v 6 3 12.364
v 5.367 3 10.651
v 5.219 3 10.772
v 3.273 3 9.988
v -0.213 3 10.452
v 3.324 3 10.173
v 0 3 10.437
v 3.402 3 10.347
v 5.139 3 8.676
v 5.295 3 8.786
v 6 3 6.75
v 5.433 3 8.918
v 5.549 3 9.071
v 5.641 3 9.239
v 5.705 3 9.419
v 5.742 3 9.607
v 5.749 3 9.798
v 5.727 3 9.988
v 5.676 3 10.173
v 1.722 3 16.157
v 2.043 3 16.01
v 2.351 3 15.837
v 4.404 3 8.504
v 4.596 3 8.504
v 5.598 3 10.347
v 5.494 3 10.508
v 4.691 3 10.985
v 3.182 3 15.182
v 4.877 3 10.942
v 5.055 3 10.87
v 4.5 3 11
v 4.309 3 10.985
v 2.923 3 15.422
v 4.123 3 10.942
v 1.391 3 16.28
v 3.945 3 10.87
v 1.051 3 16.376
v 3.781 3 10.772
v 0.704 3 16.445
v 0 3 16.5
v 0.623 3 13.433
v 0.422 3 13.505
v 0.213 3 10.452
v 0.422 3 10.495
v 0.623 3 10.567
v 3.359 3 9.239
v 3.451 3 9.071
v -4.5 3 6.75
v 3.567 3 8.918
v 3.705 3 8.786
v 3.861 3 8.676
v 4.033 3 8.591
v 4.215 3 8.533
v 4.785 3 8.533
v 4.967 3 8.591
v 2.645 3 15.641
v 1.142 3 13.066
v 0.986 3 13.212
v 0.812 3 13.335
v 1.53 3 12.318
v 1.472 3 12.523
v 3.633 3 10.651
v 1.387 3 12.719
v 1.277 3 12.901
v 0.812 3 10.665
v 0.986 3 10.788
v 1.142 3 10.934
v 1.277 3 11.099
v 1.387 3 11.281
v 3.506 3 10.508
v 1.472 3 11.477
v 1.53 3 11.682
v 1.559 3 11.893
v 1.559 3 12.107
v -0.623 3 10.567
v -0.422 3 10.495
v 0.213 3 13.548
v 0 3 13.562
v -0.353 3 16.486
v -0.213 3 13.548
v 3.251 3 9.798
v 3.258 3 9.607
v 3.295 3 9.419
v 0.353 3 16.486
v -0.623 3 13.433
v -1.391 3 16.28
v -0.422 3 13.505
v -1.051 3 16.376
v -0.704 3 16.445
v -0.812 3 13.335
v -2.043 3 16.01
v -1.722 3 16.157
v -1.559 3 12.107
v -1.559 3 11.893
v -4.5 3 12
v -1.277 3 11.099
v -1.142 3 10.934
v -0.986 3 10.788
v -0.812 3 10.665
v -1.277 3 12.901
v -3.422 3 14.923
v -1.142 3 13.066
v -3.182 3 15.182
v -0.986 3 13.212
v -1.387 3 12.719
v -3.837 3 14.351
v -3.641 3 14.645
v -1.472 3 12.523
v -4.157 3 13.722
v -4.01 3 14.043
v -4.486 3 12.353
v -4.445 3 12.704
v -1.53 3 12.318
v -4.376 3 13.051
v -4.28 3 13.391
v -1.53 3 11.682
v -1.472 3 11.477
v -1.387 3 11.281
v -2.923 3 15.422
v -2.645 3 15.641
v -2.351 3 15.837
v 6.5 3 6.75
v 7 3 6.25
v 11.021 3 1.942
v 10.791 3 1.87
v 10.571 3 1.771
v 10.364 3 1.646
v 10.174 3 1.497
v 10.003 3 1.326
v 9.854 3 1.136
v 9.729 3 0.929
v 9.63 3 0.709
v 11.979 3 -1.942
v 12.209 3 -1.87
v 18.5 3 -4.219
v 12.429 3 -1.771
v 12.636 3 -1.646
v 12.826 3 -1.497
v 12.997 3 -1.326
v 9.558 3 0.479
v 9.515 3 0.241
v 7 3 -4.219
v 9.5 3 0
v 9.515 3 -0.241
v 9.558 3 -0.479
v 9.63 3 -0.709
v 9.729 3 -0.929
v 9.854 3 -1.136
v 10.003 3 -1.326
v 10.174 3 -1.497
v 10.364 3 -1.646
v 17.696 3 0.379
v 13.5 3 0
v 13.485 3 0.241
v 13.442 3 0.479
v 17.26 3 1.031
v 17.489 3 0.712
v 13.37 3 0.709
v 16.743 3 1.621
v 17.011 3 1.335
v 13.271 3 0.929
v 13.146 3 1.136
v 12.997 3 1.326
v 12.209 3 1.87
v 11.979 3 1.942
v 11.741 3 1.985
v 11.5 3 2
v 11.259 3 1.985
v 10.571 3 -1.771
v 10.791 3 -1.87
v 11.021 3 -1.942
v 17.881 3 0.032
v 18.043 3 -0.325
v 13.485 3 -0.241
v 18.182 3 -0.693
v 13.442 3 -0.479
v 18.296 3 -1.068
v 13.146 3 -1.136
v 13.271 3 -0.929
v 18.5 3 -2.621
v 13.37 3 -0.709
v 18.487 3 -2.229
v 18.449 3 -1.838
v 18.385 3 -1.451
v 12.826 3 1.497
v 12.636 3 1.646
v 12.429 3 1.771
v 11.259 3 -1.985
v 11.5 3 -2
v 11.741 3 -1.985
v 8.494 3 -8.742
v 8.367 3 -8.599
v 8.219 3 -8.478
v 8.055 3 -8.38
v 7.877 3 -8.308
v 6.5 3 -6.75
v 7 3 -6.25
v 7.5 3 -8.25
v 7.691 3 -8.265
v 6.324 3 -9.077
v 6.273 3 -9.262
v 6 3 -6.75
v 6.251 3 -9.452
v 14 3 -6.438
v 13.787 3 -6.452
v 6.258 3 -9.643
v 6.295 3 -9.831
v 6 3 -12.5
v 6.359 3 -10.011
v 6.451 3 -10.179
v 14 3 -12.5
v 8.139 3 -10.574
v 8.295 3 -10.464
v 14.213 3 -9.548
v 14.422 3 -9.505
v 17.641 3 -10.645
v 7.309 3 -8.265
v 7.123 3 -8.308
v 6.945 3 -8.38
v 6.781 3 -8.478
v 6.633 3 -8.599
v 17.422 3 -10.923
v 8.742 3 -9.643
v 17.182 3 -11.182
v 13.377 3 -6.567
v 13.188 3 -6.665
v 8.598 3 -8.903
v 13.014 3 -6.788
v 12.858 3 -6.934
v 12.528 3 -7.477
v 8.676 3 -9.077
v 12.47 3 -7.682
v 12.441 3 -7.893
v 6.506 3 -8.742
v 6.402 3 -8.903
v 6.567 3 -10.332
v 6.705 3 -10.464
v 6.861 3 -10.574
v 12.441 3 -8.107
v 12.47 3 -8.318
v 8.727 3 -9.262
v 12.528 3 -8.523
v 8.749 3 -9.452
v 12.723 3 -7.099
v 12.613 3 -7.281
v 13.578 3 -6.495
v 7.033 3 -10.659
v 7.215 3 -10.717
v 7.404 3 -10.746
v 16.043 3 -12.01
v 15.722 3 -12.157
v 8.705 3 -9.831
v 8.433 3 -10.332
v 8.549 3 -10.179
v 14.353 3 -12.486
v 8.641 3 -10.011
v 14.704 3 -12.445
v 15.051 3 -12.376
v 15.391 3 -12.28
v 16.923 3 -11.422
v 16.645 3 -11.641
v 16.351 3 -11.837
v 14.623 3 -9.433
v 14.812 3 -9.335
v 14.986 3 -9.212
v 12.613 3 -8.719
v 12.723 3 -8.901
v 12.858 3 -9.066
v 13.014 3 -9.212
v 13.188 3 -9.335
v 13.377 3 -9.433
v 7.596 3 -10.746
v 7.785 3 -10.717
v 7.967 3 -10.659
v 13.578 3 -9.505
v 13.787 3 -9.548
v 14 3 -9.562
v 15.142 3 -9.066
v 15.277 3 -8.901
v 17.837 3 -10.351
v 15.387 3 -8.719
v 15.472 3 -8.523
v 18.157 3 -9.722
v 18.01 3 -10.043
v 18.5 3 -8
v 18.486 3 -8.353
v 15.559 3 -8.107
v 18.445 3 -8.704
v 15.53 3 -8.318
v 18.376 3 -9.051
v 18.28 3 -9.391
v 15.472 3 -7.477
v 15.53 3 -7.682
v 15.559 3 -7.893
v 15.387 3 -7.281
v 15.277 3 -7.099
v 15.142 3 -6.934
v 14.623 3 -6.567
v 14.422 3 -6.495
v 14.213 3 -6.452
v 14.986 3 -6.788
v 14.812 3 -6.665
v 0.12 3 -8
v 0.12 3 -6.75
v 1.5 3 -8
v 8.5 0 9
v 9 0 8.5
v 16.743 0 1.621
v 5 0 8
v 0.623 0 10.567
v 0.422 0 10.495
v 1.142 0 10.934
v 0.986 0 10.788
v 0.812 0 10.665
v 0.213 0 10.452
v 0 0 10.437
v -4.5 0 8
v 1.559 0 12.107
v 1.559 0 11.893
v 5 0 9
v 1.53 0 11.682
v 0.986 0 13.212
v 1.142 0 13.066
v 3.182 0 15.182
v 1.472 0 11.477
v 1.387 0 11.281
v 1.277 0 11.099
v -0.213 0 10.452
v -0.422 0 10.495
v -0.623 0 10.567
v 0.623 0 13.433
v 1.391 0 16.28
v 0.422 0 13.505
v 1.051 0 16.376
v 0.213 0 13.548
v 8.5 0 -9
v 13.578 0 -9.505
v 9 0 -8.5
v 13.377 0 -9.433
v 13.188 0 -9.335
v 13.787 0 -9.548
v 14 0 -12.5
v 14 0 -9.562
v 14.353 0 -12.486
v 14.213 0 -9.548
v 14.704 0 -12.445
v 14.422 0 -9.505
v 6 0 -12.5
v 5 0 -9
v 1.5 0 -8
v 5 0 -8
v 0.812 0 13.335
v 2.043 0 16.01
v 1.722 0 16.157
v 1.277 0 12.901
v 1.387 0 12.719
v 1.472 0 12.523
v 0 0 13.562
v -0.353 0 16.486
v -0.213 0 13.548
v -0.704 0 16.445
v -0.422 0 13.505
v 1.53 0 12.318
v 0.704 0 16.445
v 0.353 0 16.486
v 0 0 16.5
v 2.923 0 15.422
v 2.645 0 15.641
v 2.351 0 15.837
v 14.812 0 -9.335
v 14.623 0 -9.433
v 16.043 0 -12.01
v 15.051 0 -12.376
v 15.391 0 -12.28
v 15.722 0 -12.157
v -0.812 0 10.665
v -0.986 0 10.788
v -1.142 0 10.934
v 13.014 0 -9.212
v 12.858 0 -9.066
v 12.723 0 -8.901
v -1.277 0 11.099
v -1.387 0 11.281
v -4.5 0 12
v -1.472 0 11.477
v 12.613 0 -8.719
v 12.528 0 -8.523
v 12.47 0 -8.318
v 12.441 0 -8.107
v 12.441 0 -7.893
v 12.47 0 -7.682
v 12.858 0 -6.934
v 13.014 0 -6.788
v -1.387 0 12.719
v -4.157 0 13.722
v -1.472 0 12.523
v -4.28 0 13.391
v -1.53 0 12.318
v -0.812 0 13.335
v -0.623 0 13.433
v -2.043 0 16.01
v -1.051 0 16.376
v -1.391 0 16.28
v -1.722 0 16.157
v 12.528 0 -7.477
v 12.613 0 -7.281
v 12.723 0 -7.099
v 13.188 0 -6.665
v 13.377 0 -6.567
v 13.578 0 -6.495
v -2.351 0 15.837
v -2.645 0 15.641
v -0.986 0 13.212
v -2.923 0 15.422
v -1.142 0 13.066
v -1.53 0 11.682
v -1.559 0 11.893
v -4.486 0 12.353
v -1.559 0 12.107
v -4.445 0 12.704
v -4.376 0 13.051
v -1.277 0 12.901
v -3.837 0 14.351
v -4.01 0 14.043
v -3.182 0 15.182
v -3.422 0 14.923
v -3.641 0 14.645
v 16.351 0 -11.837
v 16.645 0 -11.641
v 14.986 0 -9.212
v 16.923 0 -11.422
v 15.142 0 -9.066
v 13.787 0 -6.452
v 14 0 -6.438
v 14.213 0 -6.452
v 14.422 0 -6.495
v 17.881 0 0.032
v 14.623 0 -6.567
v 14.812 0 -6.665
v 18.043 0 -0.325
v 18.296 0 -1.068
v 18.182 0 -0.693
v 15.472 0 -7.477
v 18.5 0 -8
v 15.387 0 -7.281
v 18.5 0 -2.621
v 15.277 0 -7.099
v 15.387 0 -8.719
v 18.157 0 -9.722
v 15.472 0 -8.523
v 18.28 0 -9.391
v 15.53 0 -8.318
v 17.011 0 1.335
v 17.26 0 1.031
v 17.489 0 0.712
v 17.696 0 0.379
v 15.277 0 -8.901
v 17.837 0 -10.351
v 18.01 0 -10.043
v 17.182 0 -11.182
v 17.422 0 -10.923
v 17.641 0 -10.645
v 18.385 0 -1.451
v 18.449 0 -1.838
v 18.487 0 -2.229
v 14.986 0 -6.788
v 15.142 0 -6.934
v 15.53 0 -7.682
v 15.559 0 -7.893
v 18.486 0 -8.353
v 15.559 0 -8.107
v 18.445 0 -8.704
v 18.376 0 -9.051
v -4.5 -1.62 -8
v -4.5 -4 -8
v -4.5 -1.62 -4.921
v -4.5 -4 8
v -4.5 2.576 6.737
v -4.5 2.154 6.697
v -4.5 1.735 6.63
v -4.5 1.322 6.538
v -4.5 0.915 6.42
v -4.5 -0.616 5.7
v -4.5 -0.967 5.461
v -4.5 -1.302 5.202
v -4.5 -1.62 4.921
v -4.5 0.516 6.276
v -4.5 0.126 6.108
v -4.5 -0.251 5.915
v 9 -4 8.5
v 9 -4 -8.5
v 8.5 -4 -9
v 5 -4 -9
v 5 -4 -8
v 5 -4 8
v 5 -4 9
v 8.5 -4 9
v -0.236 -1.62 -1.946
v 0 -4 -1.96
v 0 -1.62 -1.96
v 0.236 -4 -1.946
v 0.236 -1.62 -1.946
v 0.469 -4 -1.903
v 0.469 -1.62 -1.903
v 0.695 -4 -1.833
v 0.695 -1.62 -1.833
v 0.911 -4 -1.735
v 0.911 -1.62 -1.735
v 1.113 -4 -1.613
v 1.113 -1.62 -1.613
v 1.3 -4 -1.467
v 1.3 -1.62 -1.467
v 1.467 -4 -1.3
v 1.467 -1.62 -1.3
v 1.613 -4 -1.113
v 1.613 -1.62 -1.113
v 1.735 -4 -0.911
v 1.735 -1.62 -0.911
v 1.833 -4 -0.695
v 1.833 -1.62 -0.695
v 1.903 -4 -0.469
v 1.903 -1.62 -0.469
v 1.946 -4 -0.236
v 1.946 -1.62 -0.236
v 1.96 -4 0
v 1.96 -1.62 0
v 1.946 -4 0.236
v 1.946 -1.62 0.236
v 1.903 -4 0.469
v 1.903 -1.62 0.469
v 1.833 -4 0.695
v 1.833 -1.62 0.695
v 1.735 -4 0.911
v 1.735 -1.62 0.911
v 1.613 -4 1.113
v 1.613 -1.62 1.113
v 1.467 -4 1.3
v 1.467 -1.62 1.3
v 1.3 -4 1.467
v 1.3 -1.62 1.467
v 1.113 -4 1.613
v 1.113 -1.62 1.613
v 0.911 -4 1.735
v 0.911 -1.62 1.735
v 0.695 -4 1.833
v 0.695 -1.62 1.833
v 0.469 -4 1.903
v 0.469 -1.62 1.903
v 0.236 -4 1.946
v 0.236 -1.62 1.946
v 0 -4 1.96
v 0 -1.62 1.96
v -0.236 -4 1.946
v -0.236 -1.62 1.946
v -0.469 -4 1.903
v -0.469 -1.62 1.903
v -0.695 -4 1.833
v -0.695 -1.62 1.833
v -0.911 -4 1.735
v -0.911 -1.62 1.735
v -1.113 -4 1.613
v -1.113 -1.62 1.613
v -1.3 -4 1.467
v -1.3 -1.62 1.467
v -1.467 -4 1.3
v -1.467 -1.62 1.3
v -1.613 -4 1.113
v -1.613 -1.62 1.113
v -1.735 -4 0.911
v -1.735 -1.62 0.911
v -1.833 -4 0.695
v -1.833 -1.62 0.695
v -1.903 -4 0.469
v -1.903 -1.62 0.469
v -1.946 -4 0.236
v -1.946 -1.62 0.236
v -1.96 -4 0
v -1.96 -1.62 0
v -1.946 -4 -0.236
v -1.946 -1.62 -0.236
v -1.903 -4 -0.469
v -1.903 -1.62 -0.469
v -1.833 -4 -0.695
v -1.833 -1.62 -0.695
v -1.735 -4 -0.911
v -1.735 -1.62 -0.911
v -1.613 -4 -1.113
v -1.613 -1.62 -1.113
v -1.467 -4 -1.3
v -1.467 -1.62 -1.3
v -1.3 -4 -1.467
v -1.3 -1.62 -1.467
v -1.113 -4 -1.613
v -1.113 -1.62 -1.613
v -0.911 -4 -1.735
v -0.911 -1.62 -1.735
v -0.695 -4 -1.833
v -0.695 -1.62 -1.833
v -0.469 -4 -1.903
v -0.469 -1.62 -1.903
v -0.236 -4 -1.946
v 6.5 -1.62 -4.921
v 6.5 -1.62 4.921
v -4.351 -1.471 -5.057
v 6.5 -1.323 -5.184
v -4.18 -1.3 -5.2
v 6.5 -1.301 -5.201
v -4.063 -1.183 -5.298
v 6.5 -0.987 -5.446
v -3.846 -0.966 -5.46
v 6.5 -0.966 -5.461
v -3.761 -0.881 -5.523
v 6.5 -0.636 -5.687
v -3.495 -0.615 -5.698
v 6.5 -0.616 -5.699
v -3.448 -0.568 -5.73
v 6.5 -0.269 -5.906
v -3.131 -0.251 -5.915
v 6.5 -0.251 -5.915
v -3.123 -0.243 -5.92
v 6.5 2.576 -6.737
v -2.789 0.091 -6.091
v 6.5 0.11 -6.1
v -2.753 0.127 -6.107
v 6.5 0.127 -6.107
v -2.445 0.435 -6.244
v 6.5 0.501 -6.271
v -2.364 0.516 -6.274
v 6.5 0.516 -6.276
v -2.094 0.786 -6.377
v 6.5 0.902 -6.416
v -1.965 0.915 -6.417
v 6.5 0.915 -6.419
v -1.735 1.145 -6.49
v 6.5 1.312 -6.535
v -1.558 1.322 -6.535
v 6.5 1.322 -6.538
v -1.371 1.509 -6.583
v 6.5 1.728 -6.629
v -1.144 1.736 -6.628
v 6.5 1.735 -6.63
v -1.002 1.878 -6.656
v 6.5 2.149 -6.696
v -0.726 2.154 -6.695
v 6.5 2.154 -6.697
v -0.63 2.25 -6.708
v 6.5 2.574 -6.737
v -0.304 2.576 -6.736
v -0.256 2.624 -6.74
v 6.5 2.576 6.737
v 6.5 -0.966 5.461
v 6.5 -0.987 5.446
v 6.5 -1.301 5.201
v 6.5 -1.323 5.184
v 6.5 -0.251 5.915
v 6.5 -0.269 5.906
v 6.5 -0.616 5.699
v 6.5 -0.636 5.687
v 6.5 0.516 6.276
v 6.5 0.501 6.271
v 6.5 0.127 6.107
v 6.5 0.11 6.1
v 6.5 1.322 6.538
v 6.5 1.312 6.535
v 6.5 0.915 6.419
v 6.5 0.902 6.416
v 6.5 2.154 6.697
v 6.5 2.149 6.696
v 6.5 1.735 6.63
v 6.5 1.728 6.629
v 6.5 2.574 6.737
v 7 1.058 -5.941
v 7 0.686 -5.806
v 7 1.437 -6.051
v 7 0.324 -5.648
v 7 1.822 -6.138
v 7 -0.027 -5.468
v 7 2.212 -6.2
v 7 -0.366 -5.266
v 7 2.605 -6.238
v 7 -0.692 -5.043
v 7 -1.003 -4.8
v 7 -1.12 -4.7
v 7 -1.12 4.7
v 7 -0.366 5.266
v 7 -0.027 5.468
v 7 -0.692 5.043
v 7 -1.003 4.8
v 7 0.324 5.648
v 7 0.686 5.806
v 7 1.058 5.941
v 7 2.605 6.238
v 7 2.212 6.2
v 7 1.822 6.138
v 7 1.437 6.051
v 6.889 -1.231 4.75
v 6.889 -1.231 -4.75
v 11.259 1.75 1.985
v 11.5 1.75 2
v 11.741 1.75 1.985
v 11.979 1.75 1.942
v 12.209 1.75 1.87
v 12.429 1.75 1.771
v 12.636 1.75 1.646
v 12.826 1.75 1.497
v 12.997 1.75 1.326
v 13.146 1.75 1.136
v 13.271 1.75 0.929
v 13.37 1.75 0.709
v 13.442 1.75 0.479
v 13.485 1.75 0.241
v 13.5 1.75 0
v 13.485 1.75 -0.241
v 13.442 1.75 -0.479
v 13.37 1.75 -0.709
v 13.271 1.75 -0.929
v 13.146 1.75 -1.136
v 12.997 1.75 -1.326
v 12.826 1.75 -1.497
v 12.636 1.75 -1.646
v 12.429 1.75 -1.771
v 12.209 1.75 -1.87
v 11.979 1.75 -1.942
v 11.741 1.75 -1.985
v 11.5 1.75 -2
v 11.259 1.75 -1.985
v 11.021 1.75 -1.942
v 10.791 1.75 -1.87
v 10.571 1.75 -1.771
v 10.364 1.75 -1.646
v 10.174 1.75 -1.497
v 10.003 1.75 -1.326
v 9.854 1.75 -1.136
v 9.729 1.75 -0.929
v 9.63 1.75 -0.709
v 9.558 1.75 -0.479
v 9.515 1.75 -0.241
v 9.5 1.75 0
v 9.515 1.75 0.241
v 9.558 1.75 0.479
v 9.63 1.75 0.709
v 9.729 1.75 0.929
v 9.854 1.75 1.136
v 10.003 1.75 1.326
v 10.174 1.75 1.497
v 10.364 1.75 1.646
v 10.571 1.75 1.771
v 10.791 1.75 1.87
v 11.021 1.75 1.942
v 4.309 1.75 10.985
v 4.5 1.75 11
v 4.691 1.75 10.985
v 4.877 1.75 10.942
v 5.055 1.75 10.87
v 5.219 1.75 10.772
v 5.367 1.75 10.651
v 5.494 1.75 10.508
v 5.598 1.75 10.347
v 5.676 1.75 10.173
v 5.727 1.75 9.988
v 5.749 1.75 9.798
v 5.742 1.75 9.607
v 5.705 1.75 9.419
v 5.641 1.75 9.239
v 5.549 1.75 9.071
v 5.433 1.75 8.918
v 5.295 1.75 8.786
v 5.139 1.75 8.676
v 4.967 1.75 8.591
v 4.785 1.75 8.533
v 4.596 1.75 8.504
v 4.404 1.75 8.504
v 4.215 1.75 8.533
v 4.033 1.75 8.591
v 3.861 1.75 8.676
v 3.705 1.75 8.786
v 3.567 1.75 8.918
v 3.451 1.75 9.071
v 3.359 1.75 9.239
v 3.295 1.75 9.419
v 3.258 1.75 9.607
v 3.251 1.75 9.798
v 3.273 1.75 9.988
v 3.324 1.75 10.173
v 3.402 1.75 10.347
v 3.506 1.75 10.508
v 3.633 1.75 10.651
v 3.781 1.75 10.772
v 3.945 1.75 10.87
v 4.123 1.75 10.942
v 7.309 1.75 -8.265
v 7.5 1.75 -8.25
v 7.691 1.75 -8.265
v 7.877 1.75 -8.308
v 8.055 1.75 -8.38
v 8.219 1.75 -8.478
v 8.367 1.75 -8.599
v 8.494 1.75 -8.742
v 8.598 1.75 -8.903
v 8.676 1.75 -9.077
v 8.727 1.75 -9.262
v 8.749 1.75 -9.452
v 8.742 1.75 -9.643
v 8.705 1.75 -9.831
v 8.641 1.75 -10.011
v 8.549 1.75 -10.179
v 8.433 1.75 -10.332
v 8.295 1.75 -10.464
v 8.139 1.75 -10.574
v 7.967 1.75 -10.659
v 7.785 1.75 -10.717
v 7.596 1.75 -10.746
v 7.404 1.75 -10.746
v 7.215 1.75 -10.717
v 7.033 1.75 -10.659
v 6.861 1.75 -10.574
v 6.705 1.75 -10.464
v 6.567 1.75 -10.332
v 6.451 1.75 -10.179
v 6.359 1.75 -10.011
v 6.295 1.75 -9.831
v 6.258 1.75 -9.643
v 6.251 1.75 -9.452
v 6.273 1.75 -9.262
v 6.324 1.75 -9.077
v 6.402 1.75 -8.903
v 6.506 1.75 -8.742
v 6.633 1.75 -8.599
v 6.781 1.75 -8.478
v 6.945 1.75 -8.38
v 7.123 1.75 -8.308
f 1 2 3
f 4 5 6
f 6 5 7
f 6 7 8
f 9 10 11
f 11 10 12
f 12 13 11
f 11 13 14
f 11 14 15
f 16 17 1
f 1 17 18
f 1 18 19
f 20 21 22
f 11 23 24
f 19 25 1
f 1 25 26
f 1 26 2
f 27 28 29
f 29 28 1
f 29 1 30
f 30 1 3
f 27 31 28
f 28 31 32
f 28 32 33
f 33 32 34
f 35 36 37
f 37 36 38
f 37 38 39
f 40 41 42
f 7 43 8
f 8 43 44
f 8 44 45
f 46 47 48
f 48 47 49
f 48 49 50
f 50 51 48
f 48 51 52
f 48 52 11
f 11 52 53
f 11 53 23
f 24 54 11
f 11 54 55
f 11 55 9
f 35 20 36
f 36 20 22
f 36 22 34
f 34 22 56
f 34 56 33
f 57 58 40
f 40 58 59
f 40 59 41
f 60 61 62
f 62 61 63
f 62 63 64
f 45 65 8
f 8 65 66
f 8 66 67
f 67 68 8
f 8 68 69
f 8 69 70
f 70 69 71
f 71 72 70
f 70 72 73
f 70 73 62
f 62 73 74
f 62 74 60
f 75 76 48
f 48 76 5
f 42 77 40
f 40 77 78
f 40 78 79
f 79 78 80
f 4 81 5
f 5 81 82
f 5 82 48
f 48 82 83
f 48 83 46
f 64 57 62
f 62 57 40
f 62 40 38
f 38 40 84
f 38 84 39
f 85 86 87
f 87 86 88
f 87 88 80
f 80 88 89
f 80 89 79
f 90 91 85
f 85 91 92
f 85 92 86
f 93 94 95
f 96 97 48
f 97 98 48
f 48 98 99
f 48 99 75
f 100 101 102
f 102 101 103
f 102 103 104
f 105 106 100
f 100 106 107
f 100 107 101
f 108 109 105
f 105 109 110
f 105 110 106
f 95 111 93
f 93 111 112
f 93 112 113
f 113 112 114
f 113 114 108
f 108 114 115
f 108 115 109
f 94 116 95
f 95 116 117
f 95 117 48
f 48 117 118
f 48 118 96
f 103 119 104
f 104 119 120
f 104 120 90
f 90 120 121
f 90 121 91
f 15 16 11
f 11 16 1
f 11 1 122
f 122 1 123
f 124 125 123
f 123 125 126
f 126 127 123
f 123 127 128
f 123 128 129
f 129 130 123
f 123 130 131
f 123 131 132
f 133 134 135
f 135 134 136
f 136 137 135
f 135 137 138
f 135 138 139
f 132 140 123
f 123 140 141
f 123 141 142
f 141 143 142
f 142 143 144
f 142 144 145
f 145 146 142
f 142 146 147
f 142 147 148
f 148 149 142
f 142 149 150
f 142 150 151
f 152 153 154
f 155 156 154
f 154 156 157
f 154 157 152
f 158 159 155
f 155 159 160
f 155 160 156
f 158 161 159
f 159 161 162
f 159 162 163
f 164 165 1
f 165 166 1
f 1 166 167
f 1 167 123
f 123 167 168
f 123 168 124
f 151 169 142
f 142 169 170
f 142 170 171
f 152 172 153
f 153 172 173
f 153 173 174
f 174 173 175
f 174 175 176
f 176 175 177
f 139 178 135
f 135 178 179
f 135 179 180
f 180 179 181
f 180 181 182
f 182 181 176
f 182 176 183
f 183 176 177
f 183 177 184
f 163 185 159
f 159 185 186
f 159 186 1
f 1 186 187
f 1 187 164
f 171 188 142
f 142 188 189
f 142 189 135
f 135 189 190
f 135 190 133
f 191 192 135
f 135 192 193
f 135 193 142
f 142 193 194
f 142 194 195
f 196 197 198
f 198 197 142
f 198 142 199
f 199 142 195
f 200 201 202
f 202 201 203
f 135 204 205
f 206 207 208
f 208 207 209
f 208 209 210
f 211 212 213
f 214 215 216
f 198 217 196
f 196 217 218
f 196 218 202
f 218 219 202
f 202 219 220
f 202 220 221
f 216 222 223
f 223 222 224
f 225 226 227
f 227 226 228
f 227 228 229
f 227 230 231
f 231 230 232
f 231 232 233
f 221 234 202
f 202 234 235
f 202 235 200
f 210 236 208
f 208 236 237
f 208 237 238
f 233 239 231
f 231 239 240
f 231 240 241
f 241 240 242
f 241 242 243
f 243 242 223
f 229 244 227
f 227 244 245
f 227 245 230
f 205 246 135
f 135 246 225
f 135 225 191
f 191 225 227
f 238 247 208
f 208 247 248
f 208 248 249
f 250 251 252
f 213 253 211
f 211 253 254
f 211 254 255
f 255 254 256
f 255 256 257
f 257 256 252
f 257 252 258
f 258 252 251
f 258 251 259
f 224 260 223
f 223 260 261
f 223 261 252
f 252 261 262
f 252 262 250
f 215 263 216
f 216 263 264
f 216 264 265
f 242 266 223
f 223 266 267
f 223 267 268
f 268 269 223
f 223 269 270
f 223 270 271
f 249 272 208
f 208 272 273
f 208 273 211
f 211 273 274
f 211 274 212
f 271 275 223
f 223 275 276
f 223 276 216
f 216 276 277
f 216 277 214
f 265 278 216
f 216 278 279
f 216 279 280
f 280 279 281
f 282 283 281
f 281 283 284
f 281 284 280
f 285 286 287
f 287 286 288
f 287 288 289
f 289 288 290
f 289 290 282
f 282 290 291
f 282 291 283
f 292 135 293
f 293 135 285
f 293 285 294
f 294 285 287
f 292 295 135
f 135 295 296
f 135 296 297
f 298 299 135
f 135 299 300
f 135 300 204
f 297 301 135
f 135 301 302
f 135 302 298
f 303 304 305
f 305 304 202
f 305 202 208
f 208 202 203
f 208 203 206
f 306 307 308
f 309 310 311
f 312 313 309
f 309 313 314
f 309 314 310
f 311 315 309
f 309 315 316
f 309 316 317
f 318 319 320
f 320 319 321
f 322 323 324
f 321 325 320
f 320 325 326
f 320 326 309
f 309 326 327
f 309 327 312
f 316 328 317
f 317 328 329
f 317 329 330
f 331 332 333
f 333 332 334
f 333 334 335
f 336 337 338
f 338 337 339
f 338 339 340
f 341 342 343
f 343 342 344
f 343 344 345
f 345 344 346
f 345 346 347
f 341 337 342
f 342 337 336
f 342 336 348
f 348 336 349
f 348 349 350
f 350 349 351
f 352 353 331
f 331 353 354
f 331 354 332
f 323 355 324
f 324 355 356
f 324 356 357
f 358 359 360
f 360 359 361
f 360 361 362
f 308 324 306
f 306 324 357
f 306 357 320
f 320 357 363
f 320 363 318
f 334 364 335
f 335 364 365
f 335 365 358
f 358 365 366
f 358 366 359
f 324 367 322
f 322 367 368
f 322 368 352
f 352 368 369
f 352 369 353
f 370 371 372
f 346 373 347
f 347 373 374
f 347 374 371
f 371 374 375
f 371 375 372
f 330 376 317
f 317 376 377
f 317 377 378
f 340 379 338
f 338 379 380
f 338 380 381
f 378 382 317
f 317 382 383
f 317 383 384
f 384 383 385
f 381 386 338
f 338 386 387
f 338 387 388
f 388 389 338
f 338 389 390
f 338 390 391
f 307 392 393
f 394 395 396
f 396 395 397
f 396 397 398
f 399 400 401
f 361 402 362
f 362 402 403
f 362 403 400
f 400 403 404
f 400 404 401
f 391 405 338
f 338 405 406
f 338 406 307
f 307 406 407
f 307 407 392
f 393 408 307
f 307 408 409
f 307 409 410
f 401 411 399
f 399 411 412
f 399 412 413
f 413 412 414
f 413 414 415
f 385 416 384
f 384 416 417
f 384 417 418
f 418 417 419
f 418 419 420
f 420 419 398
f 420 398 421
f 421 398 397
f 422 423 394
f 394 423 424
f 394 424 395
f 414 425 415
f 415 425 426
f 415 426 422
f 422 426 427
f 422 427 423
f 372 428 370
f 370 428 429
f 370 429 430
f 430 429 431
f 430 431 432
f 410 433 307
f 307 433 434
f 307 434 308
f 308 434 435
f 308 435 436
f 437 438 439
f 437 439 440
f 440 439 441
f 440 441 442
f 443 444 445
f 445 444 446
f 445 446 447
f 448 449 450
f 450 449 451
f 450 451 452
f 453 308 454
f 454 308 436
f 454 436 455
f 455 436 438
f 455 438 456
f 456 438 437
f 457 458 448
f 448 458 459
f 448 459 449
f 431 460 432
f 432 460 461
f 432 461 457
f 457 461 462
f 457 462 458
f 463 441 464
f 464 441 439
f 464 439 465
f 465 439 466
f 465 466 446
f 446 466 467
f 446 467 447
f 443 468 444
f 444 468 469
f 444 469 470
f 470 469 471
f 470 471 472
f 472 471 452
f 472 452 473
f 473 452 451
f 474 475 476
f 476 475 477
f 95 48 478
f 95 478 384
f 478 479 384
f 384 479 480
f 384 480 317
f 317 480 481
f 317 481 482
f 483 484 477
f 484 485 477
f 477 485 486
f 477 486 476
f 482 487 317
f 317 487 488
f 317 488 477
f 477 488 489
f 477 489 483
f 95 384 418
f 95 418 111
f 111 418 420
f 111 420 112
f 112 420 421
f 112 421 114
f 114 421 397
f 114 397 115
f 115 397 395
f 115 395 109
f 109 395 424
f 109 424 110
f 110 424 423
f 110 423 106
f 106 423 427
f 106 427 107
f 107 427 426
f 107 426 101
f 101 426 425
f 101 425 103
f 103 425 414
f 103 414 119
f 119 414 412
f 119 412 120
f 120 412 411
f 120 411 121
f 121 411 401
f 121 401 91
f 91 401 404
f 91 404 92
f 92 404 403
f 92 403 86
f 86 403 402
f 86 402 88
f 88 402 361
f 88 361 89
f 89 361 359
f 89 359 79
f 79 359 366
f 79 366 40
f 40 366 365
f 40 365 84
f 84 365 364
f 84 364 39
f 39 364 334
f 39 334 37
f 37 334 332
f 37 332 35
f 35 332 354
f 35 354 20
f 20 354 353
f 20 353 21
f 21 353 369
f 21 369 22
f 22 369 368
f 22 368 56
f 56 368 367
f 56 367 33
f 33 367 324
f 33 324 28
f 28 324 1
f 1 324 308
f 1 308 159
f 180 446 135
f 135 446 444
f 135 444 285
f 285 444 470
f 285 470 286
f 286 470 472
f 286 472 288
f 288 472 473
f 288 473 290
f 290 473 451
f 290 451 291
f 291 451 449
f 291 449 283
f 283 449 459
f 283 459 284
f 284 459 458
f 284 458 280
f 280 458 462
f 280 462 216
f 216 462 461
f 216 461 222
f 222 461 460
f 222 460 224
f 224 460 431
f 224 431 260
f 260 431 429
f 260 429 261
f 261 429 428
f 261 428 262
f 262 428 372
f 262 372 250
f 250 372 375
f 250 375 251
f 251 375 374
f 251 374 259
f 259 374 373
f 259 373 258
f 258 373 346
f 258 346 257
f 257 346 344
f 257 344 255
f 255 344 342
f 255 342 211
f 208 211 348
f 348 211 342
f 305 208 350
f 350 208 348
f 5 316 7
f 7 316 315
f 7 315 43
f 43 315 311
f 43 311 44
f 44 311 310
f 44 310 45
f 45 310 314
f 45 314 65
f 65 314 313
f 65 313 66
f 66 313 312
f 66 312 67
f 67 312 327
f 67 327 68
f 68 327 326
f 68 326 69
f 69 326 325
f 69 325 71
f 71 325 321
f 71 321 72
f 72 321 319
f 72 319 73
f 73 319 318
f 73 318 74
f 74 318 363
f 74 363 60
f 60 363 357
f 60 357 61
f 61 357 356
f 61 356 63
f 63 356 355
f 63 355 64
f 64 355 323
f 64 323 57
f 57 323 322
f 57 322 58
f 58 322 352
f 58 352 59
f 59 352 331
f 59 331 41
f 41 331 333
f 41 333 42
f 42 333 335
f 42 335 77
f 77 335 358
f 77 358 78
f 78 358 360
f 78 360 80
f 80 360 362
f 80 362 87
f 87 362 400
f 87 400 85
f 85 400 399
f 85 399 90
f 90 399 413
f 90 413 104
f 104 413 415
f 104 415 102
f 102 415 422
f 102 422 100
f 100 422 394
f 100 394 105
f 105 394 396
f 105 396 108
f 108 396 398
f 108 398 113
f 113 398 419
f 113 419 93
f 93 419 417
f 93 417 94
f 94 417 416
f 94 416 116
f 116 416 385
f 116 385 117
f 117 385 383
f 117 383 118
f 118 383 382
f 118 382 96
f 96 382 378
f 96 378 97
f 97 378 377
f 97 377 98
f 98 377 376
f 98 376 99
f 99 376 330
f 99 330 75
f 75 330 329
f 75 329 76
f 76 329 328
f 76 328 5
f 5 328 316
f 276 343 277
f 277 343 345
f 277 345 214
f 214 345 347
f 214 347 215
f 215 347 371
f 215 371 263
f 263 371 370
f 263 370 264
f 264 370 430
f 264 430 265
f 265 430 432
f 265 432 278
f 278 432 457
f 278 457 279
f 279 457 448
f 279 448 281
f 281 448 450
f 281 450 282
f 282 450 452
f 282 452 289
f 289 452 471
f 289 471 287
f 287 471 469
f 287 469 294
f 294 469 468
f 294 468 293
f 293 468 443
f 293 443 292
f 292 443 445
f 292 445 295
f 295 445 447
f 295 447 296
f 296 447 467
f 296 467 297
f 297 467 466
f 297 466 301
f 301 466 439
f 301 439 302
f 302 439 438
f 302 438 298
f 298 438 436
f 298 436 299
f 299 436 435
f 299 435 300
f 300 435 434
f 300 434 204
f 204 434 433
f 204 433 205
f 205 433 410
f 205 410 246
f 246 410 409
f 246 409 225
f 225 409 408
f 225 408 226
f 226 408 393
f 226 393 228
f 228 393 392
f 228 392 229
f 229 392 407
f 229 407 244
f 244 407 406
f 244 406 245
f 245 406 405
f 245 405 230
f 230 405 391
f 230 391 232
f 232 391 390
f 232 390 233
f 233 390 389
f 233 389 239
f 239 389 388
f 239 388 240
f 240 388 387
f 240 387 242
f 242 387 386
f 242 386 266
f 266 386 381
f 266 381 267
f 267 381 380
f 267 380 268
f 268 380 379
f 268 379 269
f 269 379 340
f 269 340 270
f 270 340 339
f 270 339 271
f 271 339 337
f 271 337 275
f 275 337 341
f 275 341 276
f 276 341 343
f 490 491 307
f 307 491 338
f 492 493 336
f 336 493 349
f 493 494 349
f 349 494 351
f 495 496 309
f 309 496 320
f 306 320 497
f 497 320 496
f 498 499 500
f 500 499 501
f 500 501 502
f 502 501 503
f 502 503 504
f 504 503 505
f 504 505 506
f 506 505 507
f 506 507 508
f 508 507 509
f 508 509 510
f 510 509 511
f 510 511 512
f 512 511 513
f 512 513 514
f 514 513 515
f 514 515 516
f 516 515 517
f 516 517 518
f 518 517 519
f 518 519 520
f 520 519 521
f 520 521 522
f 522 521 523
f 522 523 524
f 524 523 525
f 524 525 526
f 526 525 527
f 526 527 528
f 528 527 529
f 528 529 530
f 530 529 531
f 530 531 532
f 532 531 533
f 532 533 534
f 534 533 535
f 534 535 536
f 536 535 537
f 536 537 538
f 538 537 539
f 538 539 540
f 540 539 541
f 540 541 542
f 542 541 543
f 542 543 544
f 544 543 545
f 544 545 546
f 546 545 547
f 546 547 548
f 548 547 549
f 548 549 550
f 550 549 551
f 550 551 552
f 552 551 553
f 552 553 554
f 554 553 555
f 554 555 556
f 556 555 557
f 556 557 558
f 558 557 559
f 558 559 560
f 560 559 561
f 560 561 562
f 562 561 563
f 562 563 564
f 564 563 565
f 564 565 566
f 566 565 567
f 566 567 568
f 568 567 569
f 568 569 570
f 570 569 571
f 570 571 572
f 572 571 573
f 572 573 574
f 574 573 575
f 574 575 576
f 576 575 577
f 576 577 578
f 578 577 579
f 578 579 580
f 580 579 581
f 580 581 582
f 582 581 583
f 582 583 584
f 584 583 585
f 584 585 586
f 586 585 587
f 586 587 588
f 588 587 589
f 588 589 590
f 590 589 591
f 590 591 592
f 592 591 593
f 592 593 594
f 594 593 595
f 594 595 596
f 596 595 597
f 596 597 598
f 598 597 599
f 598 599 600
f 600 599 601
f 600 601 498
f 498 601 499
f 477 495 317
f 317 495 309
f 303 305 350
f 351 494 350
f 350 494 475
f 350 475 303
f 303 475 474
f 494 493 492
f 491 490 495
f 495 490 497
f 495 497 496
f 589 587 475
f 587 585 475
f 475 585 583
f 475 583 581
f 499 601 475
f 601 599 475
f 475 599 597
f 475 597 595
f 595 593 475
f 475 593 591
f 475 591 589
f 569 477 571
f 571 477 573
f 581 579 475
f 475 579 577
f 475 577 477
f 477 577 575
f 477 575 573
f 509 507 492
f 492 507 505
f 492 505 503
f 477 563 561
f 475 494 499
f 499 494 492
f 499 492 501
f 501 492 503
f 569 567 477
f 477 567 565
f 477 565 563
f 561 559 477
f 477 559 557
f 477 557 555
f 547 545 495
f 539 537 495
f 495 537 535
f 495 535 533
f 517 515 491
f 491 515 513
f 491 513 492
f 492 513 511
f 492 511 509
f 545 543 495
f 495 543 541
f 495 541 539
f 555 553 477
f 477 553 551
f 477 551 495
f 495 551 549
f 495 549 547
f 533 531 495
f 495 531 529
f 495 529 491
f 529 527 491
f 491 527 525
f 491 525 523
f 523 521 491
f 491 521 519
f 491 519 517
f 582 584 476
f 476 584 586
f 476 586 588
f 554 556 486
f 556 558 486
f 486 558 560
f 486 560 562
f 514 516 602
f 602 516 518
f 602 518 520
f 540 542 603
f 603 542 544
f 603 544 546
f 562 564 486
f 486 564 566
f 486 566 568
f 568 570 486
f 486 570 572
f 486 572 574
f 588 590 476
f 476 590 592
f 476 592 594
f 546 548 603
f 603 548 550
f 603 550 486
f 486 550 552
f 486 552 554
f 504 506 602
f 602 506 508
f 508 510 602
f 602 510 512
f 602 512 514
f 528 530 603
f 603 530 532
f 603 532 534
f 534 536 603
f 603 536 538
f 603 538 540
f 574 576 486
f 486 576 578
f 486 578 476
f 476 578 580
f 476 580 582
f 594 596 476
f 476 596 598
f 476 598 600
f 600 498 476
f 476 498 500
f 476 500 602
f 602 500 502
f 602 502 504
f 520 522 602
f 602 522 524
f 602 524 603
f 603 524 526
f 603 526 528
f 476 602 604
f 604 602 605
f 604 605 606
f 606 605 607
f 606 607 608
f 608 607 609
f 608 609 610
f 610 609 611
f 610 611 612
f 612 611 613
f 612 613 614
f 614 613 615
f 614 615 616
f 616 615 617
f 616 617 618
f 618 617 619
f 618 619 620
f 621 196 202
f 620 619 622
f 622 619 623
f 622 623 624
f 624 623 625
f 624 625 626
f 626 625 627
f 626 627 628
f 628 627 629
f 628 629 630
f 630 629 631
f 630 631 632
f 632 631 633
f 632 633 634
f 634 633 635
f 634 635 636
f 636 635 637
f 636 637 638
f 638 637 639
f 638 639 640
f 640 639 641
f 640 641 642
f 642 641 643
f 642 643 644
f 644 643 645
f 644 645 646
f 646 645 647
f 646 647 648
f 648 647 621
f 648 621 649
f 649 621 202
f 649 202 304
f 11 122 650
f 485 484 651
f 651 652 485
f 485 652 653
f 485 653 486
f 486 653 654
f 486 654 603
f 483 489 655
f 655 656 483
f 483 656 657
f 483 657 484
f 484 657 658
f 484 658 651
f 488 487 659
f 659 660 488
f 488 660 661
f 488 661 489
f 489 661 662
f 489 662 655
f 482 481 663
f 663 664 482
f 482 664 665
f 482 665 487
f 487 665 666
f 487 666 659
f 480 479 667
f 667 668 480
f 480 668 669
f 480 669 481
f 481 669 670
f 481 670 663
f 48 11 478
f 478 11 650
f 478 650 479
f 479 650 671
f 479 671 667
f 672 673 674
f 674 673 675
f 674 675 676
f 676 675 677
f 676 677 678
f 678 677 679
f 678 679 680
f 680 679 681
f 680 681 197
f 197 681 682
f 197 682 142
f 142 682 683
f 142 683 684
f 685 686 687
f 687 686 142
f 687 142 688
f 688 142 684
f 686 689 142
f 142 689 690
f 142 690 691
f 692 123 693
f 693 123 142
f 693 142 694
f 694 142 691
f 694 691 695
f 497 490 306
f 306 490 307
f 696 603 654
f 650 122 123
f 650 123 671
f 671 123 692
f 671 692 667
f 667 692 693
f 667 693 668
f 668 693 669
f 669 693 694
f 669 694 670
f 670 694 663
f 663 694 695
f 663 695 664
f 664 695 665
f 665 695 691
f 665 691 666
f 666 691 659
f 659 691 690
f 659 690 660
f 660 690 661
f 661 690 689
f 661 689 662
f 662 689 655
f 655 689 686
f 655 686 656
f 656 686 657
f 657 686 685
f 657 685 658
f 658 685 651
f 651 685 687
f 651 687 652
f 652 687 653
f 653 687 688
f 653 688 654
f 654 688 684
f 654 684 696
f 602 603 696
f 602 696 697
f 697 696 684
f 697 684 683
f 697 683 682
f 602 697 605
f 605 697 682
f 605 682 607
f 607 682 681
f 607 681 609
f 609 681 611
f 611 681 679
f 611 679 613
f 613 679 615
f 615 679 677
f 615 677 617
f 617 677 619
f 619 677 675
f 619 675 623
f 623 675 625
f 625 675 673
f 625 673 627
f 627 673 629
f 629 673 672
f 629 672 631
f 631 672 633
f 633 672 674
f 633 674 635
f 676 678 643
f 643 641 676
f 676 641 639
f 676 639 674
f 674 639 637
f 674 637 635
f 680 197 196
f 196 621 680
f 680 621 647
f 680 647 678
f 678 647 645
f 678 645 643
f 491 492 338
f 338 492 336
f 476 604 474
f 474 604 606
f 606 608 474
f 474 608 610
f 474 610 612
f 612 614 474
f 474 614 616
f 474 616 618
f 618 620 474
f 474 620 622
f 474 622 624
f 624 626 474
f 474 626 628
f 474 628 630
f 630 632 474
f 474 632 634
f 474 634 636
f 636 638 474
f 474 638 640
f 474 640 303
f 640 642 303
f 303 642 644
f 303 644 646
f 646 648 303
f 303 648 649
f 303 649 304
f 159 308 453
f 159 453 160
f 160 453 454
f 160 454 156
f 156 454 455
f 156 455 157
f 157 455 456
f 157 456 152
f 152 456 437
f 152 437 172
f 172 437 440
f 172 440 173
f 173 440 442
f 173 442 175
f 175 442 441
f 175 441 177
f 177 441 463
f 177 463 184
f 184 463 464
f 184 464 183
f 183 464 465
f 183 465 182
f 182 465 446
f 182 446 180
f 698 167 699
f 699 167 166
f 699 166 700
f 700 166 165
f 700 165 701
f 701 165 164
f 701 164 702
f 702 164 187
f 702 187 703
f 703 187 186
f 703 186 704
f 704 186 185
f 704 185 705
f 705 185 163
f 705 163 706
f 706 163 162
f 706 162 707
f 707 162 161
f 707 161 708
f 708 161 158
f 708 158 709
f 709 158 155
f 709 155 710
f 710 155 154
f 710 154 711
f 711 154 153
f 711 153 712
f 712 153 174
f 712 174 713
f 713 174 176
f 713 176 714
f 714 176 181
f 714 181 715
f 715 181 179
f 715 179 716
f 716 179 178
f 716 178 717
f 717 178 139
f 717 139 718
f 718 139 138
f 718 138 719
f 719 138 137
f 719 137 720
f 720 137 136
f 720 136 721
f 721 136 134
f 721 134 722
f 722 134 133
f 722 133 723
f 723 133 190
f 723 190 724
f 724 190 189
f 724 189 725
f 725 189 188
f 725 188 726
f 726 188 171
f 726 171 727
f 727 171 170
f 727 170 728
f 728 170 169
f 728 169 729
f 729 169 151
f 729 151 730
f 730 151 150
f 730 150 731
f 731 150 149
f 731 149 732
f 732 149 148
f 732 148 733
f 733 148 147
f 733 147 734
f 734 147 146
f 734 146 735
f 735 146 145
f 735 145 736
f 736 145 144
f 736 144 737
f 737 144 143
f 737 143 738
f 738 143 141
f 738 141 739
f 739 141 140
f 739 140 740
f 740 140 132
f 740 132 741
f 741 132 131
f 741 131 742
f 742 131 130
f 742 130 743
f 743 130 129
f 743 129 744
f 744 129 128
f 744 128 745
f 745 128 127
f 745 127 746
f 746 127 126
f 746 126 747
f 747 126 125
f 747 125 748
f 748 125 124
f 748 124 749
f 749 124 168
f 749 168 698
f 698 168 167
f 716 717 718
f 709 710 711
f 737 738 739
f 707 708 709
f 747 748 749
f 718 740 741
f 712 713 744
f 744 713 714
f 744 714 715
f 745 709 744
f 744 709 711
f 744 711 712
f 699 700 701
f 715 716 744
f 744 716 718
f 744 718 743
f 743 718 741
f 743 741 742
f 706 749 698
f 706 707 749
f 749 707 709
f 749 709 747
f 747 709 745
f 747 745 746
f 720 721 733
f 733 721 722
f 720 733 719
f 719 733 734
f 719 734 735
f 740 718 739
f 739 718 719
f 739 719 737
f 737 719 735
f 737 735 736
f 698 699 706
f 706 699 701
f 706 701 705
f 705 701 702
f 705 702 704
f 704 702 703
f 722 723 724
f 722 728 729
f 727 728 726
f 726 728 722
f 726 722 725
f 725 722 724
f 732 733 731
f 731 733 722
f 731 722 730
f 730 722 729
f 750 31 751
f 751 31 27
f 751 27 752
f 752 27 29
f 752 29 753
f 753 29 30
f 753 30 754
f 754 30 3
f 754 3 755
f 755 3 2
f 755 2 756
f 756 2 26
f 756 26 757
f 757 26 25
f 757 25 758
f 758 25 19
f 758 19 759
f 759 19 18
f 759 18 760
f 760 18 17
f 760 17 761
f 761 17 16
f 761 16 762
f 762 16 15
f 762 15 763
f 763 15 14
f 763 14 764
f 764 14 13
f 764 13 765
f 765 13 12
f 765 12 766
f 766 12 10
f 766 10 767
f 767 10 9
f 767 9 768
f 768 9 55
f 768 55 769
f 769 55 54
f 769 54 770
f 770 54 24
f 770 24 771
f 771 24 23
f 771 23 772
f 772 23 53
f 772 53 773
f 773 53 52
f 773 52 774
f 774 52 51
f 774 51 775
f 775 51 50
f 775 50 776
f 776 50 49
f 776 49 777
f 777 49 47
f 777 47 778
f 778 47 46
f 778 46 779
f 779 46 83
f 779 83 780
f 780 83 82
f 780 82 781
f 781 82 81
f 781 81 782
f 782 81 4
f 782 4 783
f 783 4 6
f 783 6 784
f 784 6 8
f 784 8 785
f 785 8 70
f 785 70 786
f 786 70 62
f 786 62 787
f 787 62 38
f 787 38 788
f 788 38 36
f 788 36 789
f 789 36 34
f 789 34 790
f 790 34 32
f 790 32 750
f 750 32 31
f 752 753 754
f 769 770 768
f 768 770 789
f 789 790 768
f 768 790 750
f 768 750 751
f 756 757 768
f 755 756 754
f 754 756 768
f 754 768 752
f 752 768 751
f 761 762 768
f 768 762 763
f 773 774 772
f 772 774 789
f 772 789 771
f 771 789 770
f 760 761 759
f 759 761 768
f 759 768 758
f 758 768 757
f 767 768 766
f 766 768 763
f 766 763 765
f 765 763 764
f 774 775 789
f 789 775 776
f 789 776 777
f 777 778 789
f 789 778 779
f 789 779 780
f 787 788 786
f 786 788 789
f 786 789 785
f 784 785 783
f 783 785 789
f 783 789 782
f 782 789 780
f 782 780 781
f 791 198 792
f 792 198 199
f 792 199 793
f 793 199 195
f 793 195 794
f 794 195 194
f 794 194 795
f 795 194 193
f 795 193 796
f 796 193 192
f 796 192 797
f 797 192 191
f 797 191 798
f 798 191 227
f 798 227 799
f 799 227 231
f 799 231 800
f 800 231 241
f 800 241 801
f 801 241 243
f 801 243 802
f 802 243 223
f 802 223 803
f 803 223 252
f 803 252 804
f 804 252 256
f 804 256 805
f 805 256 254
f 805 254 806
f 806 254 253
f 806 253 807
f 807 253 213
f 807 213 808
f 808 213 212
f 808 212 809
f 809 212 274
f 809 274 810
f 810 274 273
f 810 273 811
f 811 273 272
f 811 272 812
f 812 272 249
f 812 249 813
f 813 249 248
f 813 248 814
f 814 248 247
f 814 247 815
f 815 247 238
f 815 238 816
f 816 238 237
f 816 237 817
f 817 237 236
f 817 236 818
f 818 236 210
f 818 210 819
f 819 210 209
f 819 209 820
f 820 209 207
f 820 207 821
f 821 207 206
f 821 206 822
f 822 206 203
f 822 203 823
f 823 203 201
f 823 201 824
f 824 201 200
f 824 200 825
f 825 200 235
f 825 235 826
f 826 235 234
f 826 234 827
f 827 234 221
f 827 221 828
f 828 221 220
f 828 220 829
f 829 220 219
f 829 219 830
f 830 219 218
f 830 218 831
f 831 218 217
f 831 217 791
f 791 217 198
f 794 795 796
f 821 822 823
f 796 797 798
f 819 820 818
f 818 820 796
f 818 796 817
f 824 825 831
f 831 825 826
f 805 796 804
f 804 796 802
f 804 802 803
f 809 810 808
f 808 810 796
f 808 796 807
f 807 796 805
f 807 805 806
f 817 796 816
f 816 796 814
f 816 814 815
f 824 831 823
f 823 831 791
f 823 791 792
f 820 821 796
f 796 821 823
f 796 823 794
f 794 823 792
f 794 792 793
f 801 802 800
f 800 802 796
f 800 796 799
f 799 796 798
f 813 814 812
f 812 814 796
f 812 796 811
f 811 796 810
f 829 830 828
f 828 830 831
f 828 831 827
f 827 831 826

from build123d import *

# Parameters (mm, degrees)
SKETCH1_R                = 1.5625
BOSS_EXTRUDE1_DEPTH      = 3
SKETCH2_R                = 1.96
BOSS_EXTRUDE2_DEPTH      = 4
BOSS_EXTRUDE2_DEPTH_BACK = 3
CUT_EXTRUDE1_DEPTH       = 11.5
CHAMFER1_SIZE            = 0.5
CUT_EXTRUDE3_DEPTH       = 4.7625
FILLET1_R                = 6
SKETCH6_R                = 2
SKETCH6_R_2              = 1.25
CUT_EXTRUDE4_DEPTH       = 1.25


with BuildPart() as part:
    # Sketch1 → Boss-Extrude1 (new body)
    with BuildSketch(Plane(origin=(0, 0, 0), x_dir=(1, 0, 0), z_dir=(0, 1, 0))):
        with BuildLine():
            Line((3.181980515, -15.181980515), (18.5, 0.136038969))
            Line((18.5, 0.136038969), (18.5, 8))
            ThreePointArc((18.5, 8), (17.181980515, 11.181980515), (14, 12.5))
            Line((14, 12.5), (6, 12.5))
            Line((6, 12.5), (1, 7.5))
            Line((1, 7.5), (-4.5, 2))
            Line((-4.5, 2), (-4.5, -6.5))
            Line((-4.5, -6.5), (-4.5, -12))
            ThreePointArc((-4.5, -12), (-1.722075446, -16.157457896), (3.181980515, -15.181980515))
        make_face()
        with Locations((0, -12)):
            Circle(SKETCH1_R, mode=Mode.SUBTRACT)
        with Locations((14, 8)):
            Circle(SKETCH1_R, mode=Mode.SUBTRACT)
    extrude(amount=BOSS_EXTRUDE1_DEPTH)

    # Sketch2 → Boss-Extrude2 (add, two sides)
    with BuildSketch(Plane.XZ) as boss_extrude2_sk:
        Polygon((9, -9), (5, -9), (5, -8), (-4.5, -8), (-4.5, 8), (5, 8), (5, 9), (9, 9), align=None)
        Circle(SKETCH2_R, mode=Mode.SUBTRACT)
    extrude(amount=BOSS_EXTRUDE2_DEPTH)
    extrude(boss_extrude2_sk.sketch, amount=-BOSS_EXTRUDE2_DEPTH_BACK)

    # Sketch3 → Cut-Extrude1 (cut)
    with BuildSketch(Plane.ZY.offset(4.5)):
        with BuildLine():
            Line((-4.921188881, -1.62), (4.921188881, -1.62))
            ThreePointArc((4.921188881, -1.62), (6.276166224, 0.515601174), (6.75, 3))
            Line((6.75, 3), (-6.75, 3))
            ThreePointArc((-6.75, 3), (-6.276166224, 0.515601174), (-4.921188881, -1.62))
        make_face()
    extrude(amount=-CUT_EXTRUDE1_DEPTH, mode=Mode.SUBTRACT)

    # Chamfer1
    chamfer1_edges = [part.edges().sort_by_distance(p)[0] for p in [
        (9, -2, 9),
        (9, -2, -9),
        (7, -1.62, 0),
        (7, 0.515601174, -6.276166224),
        (7, 0.515601174, 6.276166224),
    ]]
    chamfer(chamfer1_edges, length=CHAMFER1_SIZE)

    # Sketch5 → Cut-Extrude3 (cut)
    with BuildSketch(Plane(origin=(0, 0, -8), x_dir=(-1, 0, 0), z_dir=(0, 0, -1))):
        Polygon((4.5, -1.62), (-0.12, 3), (4.5, 3), align=None)
    extrude(amount=-CUT_EXTRUDE3_DEPTH, mode=Mode.SUBTRACT)

    # Fillet1
    fillet1_edges = [part.edges().sort_by_distance(p)[0] for p in [
        (18.5, 1.5, -0.136038969),
    ]]
    fillet(fillet1_edges, radius=FILLET1_R)

    # Sketch6 → Cut-Extrude4 (cut)
    with BuildSketch(Plane(origin=(0, 3, 0), x_dir=(1, 0, 0), z_dir=(0, 1, 0))):
        with Locations((11.5, 0)):
            Circle(SKETCH6_R)
        with Locations((4.5, -9.75)):
            Circle(SKETCH6_R_2)
        with Locations((7.5, 9.5)):
            Circle(SKETCH6_R_2)
    extrude(amount=-CUT_EXTRUDE4_DEPTH, mode=Mode.SUBTRACT)


solid = part.part
